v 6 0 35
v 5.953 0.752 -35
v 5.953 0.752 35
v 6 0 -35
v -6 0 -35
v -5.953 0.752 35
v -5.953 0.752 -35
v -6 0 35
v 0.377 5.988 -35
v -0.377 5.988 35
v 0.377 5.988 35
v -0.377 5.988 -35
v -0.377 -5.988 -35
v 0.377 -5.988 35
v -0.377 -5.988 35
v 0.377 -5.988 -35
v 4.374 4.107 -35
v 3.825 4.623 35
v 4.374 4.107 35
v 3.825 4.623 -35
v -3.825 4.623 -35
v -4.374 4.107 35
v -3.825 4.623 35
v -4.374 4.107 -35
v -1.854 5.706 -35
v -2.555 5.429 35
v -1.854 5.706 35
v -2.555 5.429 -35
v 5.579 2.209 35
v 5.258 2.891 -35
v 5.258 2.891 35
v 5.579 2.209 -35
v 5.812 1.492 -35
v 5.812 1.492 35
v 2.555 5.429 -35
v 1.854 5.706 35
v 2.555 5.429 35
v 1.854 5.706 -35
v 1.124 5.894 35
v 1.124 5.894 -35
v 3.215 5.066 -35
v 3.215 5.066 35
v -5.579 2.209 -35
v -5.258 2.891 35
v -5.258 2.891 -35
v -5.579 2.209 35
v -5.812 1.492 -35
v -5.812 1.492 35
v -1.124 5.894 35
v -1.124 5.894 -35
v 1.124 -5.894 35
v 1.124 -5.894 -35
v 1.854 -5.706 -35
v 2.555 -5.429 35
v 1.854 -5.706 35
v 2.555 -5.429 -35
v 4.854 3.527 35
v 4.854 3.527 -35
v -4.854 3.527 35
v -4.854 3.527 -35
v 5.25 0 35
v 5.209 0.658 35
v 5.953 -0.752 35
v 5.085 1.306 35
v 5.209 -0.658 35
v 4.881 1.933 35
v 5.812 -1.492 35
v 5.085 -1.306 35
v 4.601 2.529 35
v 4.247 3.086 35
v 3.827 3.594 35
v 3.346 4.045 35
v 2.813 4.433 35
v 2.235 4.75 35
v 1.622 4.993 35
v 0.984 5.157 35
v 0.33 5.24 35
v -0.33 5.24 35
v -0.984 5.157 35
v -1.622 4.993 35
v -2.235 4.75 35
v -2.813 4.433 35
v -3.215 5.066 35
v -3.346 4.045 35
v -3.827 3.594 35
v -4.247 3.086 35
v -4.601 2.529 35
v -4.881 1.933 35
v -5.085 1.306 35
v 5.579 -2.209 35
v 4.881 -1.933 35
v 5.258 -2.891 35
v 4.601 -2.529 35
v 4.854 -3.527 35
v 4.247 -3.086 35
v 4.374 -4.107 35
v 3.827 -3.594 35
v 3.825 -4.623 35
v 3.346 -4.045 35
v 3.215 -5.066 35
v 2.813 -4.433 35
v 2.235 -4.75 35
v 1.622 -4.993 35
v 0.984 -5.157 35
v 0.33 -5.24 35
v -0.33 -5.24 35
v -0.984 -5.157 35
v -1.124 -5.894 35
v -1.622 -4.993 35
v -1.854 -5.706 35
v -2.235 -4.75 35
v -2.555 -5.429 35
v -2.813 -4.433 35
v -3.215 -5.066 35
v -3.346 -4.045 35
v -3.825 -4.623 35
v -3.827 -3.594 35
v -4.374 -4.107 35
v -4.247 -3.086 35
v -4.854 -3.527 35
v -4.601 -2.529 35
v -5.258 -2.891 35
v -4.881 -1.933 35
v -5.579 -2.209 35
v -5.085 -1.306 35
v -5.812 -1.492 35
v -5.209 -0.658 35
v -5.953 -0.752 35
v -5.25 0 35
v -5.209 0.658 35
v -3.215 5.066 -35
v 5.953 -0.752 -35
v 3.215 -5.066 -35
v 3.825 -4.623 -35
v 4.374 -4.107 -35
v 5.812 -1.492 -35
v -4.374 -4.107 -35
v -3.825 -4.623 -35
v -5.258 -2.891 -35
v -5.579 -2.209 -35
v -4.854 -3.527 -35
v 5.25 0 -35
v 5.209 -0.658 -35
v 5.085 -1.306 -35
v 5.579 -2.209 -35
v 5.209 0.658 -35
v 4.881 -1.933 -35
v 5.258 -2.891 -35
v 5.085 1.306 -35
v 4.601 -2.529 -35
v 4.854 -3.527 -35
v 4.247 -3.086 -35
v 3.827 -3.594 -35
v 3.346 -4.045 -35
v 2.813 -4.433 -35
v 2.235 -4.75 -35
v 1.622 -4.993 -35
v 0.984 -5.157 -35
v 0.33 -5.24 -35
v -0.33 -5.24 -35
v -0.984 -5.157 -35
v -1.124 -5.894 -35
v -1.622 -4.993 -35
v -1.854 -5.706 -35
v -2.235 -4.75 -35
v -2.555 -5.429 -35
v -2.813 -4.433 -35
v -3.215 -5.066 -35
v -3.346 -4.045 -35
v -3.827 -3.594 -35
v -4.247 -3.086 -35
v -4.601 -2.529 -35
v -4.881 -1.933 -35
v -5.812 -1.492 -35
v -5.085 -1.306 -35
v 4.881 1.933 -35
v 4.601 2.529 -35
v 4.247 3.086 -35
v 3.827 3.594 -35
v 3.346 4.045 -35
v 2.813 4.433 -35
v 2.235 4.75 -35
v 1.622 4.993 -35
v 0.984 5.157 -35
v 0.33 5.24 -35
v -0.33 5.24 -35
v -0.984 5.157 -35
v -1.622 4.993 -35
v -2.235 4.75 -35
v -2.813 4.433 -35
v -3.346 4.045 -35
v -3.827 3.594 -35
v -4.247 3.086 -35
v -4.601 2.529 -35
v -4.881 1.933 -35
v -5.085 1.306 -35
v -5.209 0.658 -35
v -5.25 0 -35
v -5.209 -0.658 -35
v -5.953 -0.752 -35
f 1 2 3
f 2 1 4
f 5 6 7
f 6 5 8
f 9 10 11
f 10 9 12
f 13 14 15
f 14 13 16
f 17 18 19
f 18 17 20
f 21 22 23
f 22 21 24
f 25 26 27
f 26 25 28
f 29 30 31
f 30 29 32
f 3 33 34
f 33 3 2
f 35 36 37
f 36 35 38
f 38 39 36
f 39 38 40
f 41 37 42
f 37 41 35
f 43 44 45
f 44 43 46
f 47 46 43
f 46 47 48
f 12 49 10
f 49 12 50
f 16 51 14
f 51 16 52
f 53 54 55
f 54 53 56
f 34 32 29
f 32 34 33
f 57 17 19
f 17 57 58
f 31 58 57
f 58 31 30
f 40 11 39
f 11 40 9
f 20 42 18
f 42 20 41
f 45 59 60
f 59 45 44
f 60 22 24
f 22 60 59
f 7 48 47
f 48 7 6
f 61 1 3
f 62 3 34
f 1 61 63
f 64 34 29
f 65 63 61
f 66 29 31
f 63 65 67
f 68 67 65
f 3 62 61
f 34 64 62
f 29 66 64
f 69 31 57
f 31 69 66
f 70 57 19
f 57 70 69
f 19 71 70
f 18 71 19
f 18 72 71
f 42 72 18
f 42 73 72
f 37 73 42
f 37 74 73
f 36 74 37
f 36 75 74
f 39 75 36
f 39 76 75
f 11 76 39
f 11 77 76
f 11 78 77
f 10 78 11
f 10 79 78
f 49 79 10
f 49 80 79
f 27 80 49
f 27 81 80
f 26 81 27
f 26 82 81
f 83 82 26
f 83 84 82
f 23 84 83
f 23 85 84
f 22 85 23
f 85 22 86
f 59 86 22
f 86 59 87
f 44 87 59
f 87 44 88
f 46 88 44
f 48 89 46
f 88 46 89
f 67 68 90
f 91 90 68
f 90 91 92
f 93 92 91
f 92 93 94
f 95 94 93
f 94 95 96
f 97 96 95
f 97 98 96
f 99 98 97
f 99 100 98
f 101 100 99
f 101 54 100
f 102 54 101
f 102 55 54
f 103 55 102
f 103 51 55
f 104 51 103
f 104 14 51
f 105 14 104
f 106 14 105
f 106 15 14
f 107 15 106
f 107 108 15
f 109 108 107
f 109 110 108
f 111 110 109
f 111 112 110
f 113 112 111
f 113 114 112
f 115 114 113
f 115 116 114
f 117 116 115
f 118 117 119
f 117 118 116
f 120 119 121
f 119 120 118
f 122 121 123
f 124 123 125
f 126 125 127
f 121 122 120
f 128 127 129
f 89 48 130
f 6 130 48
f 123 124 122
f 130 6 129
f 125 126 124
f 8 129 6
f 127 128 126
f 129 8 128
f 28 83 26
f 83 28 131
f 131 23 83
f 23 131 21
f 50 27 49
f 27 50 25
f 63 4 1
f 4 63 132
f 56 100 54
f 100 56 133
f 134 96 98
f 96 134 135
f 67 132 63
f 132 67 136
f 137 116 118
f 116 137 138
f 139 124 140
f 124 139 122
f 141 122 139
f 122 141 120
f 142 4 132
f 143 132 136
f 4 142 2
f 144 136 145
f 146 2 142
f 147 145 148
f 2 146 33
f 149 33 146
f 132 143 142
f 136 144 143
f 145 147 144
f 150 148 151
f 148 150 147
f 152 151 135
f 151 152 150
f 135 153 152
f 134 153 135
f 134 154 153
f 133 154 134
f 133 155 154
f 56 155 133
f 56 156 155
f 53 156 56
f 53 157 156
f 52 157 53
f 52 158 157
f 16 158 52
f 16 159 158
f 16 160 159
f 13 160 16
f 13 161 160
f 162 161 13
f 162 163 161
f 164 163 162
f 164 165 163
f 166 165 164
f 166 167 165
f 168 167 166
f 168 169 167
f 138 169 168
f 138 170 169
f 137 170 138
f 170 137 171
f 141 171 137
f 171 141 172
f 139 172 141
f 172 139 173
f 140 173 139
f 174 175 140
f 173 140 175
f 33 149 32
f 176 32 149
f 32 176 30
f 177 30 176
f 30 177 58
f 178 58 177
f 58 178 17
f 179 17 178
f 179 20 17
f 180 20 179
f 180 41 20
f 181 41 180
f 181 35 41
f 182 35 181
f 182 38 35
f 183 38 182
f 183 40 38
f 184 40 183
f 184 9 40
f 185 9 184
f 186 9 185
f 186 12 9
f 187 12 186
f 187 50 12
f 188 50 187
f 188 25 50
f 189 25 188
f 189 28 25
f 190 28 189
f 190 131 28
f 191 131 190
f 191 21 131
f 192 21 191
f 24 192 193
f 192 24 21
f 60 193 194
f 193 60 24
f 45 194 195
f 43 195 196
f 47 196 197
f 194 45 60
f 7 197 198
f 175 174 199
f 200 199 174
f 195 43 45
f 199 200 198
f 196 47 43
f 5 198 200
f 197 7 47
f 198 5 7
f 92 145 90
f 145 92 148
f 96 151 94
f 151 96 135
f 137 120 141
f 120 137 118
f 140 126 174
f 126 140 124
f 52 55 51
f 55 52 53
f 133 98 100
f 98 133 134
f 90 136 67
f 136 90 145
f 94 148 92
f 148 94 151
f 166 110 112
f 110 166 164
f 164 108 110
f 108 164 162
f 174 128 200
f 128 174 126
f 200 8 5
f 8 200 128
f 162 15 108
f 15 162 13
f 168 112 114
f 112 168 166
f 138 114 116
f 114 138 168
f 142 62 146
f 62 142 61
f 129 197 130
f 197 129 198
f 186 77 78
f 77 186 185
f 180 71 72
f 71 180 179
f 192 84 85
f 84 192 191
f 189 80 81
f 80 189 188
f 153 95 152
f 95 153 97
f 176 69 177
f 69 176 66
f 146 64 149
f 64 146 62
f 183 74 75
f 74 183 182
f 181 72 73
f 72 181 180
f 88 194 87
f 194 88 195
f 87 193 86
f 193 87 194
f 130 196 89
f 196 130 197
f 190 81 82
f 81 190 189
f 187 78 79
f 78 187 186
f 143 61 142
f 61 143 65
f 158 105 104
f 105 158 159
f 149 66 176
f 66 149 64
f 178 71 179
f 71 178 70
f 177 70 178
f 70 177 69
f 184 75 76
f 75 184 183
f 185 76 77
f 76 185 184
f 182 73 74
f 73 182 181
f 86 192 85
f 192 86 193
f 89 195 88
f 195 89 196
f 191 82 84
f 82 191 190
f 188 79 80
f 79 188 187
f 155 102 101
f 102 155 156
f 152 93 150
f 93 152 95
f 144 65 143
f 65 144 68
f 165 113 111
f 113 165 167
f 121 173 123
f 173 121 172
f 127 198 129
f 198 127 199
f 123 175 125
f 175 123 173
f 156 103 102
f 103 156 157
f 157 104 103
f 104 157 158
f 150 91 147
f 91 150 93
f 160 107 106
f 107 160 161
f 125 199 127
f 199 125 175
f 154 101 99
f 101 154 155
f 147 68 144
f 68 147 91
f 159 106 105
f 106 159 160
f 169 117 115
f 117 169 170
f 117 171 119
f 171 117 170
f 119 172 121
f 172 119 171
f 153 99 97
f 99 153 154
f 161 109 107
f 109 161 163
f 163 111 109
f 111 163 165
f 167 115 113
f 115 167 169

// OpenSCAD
$fn = 50;


difference() {
	union() {
		translate(v = [0, 0, -35.0000000000]) {
			cylinder(h = 70, r = 6.0000000000);
		}
	}
	union() {
		translate(v = [0, 0, -100.0000000000]) {
			cylinder(h = 200, r = 5.2500000000);
		}
	}
}
